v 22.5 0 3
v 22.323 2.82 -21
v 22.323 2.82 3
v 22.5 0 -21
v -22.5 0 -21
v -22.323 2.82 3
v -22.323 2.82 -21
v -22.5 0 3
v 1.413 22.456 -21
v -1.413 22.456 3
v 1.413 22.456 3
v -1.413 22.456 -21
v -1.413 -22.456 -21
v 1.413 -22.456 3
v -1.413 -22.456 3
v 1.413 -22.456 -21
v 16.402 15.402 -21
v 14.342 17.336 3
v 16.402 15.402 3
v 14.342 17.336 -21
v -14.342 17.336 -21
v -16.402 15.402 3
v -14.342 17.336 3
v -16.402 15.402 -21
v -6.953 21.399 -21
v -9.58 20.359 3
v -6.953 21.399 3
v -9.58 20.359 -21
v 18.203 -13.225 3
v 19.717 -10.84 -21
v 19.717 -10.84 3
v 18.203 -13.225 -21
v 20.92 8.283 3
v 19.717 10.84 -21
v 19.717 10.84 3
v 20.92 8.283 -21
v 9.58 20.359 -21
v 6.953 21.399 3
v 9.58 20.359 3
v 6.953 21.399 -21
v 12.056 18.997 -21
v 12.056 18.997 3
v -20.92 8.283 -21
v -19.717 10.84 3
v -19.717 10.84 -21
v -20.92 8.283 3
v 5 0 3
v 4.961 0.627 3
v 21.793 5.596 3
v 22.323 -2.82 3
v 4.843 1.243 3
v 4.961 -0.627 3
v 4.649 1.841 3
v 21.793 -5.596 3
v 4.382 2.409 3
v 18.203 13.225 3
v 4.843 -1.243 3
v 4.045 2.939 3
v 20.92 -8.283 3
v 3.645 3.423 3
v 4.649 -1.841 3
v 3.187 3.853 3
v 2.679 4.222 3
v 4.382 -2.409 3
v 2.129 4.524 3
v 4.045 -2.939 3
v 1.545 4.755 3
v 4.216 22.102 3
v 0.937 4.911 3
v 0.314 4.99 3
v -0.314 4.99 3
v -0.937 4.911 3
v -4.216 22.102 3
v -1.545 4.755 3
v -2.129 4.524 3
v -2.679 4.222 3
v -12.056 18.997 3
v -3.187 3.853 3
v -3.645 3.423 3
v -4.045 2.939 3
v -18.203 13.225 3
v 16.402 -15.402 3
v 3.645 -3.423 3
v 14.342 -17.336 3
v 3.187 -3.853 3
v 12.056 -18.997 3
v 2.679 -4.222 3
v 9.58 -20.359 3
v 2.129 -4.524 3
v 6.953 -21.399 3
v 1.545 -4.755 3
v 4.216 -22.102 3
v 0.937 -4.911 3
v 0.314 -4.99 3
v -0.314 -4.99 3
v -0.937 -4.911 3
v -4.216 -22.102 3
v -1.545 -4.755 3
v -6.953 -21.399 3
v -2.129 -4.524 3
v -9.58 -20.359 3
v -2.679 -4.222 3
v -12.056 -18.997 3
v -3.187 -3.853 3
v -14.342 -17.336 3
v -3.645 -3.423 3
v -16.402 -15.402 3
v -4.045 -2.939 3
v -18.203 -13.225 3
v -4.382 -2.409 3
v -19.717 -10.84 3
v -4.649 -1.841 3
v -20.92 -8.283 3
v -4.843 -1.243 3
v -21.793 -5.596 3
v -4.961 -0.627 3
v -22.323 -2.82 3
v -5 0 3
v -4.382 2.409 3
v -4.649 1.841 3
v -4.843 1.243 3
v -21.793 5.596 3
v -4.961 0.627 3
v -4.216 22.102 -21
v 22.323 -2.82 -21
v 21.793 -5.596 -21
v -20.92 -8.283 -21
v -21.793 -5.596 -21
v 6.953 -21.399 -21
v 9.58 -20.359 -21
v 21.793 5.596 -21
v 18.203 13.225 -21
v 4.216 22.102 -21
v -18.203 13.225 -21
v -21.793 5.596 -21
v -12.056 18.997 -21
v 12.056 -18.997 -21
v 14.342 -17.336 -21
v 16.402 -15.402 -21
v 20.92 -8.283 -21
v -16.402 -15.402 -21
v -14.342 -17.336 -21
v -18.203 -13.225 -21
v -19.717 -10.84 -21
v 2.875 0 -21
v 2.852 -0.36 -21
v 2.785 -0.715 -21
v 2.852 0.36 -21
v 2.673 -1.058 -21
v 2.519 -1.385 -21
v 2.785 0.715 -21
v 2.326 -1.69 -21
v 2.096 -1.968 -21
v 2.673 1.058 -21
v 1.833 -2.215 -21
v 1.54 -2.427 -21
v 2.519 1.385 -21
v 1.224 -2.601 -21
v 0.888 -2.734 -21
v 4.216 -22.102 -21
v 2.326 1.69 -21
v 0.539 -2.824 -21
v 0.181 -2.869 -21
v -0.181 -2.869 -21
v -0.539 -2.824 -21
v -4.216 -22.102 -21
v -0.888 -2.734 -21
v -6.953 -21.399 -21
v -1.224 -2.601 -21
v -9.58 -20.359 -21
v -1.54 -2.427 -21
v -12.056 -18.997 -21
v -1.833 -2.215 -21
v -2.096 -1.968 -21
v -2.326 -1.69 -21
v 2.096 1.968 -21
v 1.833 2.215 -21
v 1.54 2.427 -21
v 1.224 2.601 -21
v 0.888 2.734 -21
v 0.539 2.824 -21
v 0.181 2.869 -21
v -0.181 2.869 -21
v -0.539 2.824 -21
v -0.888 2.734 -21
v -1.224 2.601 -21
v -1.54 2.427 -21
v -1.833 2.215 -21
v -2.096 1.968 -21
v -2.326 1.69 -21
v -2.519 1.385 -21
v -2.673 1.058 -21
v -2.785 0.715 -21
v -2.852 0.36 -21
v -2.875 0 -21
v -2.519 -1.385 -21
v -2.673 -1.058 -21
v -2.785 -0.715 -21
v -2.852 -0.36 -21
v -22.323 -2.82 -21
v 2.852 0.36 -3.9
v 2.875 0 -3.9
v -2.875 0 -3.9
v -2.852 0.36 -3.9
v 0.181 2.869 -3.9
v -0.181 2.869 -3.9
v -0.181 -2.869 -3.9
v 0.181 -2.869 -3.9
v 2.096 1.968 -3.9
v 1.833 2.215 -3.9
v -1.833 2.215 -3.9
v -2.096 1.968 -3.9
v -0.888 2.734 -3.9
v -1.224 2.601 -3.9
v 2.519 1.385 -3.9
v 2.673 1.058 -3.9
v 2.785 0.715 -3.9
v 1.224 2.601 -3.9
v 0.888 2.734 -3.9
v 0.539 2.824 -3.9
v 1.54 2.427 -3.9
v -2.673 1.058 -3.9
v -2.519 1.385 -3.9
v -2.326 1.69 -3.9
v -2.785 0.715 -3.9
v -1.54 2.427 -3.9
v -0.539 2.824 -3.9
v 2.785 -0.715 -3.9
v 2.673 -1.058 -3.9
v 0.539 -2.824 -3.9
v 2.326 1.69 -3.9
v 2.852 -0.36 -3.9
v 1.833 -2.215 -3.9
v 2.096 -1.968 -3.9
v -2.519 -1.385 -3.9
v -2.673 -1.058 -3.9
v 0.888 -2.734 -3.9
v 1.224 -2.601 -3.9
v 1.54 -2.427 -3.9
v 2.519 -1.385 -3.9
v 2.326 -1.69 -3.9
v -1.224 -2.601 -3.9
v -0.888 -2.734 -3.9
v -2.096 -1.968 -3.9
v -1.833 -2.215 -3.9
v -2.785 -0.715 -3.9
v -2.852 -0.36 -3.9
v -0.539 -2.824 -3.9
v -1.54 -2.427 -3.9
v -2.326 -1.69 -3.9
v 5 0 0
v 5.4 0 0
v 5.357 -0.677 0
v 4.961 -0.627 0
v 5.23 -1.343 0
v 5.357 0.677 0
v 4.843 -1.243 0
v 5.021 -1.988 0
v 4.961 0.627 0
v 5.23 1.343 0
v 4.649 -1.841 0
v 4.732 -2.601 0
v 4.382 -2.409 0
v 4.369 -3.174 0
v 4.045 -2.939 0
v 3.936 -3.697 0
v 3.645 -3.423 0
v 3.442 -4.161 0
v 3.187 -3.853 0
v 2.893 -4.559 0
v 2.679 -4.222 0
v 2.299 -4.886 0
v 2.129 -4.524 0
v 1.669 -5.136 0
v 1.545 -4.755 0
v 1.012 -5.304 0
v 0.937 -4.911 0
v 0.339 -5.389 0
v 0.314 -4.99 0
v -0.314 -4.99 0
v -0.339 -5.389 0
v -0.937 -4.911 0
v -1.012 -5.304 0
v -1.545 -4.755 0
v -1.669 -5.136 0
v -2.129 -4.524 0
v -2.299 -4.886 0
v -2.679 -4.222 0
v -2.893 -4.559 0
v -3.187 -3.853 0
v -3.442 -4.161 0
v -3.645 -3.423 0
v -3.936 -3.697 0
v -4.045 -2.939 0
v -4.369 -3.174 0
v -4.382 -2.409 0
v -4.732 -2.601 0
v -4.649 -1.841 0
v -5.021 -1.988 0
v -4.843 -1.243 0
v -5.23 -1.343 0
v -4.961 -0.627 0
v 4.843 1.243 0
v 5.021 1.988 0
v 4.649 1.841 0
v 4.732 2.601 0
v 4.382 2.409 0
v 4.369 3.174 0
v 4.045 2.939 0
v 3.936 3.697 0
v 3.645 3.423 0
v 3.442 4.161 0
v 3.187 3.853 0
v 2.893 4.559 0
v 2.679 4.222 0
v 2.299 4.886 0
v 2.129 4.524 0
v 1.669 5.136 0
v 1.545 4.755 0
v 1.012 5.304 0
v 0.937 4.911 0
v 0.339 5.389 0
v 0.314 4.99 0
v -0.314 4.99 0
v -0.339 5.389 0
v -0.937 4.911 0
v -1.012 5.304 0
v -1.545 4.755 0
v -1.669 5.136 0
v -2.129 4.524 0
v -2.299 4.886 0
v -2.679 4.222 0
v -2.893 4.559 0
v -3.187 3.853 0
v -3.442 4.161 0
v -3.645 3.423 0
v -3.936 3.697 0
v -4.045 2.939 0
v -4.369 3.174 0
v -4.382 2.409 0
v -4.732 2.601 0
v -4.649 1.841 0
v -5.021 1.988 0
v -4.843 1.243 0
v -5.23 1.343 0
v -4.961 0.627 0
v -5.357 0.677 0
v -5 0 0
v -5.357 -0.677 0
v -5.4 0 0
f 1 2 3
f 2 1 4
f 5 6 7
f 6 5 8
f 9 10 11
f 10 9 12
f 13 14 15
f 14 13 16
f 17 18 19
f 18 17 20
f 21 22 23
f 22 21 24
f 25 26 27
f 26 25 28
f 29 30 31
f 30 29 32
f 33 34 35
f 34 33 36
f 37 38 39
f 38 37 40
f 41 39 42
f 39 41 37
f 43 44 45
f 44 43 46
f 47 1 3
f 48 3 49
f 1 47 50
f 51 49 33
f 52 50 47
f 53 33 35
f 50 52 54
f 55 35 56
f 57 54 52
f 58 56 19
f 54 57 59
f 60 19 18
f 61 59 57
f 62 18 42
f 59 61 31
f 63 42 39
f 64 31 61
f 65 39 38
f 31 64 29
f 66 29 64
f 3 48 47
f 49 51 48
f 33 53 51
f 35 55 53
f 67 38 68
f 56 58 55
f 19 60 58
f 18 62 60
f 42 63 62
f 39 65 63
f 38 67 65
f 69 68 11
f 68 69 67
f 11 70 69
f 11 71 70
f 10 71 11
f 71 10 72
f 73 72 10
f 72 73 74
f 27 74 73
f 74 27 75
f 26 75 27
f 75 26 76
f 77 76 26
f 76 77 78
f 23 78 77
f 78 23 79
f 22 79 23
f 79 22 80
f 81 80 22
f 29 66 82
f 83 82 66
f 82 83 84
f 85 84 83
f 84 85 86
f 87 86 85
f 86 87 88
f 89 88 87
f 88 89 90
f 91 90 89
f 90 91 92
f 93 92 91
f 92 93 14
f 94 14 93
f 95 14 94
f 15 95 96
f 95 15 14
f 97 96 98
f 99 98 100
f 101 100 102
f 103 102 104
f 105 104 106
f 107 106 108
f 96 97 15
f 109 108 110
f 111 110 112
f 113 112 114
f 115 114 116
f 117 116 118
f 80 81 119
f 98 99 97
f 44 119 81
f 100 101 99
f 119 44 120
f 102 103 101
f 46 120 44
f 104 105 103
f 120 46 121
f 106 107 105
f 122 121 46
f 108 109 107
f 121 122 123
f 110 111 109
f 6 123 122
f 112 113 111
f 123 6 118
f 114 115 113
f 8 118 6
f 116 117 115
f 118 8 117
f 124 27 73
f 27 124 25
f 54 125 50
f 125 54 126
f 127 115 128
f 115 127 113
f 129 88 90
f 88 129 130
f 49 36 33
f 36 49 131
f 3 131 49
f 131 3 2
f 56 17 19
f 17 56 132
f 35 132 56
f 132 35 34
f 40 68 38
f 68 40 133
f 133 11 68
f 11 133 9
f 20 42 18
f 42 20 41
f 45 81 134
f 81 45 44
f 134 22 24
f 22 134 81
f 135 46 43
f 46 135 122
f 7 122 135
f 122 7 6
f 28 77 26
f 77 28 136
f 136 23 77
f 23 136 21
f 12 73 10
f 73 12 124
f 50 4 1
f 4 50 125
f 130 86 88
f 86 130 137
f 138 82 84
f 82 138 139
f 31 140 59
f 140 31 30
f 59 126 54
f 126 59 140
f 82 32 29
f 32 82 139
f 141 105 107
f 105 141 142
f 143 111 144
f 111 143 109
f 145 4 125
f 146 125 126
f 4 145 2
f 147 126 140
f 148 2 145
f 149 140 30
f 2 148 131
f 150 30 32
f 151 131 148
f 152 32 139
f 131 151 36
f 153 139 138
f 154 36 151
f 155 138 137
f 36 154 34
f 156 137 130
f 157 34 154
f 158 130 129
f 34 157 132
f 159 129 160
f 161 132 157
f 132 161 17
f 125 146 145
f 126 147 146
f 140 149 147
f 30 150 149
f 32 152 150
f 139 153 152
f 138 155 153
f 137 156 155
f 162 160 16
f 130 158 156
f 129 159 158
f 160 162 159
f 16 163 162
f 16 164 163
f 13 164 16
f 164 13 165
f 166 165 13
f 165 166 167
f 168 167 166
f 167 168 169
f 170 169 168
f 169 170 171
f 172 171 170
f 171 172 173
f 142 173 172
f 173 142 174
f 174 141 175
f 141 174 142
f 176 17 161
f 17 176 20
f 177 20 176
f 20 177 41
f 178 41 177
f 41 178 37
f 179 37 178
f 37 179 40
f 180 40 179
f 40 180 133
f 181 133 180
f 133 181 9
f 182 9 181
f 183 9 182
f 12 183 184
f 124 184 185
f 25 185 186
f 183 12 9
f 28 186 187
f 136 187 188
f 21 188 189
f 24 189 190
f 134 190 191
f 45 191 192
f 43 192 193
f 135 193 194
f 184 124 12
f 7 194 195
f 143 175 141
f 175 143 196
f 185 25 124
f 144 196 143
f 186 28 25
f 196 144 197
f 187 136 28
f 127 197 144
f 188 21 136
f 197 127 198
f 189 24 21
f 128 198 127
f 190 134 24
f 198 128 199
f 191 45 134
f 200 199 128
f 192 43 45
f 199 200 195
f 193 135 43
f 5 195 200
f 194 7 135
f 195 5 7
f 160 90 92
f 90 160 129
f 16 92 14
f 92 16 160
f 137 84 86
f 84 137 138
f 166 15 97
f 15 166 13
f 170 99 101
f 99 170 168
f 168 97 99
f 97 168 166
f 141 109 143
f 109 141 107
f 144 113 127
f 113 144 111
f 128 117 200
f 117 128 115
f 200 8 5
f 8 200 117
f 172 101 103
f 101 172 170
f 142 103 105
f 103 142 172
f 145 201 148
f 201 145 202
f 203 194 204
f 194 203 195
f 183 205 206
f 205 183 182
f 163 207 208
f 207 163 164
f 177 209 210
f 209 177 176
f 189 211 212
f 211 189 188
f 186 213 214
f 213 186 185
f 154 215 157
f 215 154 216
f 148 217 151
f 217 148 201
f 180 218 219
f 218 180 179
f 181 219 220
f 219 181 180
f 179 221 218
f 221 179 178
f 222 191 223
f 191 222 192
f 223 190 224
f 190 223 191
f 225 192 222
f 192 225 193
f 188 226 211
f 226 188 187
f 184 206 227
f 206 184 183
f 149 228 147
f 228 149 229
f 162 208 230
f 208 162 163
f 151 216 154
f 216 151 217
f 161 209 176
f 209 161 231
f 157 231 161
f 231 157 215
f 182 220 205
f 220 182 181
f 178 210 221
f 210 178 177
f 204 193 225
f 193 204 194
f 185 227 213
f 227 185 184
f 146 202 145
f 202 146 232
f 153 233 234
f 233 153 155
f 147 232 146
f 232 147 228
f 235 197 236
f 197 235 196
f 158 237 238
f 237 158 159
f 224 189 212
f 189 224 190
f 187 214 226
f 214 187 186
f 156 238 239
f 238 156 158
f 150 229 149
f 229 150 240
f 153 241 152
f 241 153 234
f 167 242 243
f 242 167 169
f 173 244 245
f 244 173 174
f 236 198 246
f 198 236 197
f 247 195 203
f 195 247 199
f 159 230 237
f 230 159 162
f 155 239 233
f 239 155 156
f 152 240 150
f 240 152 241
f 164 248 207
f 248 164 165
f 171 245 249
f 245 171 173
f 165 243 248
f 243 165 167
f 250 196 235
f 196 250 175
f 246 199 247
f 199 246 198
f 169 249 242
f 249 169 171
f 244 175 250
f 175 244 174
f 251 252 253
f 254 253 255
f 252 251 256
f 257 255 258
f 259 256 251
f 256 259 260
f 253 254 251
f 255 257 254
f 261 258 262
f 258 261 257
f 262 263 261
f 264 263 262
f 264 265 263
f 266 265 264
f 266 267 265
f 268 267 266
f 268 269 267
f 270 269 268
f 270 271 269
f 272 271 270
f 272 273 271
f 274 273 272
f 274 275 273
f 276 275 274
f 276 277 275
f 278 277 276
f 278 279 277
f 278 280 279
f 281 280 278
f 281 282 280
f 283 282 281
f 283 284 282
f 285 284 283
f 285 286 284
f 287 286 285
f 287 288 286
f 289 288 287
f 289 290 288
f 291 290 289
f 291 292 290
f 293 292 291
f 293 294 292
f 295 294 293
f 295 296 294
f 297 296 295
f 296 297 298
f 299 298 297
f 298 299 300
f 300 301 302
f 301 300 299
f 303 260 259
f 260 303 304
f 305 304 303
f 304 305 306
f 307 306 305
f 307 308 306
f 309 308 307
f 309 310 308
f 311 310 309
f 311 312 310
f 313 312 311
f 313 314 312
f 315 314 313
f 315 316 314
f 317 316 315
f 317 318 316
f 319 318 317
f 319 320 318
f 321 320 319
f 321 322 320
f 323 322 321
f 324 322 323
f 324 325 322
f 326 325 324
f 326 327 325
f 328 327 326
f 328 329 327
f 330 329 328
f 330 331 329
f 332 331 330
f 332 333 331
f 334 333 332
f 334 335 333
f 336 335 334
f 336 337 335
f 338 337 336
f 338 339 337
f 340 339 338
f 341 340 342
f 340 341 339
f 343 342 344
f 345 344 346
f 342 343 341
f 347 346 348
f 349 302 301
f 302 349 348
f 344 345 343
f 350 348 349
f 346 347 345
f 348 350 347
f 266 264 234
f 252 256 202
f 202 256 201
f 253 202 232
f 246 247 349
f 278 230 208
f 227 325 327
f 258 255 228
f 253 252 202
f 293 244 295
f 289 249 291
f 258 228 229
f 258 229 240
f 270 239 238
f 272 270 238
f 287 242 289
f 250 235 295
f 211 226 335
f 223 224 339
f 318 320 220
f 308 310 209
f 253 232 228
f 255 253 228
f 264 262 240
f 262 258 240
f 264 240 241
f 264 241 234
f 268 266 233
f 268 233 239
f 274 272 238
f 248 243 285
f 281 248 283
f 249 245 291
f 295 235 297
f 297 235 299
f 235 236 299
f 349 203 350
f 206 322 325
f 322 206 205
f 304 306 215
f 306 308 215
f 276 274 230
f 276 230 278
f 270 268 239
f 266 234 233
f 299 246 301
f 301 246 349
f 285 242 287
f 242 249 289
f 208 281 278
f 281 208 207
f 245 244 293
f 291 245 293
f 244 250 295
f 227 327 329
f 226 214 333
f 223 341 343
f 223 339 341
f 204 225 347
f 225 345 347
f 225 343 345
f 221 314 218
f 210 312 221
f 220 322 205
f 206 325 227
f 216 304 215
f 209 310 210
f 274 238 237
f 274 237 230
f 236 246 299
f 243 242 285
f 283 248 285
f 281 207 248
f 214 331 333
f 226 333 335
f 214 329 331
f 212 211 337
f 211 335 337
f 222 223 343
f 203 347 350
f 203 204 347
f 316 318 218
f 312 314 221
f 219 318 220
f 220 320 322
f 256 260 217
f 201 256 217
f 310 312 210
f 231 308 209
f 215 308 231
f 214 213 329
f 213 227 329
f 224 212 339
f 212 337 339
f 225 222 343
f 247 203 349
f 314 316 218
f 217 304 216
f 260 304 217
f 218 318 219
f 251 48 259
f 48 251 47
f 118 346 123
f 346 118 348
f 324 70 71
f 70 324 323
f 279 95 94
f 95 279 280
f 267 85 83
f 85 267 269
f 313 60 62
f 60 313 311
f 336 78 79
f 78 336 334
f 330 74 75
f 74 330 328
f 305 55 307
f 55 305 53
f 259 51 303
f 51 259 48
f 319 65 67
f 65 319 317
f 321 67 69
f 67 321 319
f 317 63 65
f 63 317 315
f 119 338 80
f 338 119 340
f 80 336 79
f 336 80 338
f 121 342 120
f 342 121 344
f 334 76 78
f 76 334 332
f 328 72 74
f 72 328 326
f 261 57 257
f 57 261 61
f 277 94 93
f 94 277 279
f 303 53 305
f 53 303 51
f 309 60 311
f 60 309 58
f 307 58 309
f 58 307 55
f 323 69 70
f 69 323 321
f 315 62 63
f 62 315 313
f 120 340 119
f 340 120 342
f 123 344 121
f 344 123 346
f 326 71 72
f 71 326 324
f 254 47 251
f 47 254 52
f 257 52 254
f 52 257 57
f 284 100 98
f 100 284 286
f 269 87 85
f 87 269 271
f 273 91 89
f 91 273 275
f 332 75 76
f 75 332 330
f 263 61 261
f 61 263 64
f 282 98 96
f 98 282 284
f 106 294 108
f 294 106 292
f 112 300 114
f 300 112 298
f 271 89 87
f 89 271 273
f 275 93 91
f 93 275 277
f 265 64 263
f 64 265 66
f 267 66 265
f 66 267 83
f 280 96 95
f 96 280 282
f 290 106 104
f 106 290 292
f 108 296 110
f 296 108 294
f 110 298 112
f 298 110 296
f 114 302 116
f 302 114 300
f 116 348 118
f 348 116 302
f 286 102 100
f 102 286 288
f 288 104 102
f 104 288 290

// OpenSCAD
$fn = 50;

difference() {
	union() {
		translate(v = [0, 0, -21.0]) {
			cylinder(h = 24, r = 22.5);
		}
	}
	union() {
		translate(v = [0, 0, 0]) {
			rotate(a = [0, 0, 0]) {
				difference() {
					union() {
						translate(v = [0, 0, -24.0]) {
							cylinder(h = 24, r = 2.6);
						}
						translate(v = [0, 0, -3.9]) {
							cylinder(h = 3.9, r1 = 2.875, r2 = 5.4);
						}
						translate(v = [0, 0, -24.0]) {
							cylinder(h = 24, r = 2.875);
						}
						translate(v = [0, 0, -24.0]) {
							cylinder(h = 24, r = 2.6);
						}
					}
					union();
				}
			}
		}
		#cylinder(h = 3, r = 5.0);
	}
}
